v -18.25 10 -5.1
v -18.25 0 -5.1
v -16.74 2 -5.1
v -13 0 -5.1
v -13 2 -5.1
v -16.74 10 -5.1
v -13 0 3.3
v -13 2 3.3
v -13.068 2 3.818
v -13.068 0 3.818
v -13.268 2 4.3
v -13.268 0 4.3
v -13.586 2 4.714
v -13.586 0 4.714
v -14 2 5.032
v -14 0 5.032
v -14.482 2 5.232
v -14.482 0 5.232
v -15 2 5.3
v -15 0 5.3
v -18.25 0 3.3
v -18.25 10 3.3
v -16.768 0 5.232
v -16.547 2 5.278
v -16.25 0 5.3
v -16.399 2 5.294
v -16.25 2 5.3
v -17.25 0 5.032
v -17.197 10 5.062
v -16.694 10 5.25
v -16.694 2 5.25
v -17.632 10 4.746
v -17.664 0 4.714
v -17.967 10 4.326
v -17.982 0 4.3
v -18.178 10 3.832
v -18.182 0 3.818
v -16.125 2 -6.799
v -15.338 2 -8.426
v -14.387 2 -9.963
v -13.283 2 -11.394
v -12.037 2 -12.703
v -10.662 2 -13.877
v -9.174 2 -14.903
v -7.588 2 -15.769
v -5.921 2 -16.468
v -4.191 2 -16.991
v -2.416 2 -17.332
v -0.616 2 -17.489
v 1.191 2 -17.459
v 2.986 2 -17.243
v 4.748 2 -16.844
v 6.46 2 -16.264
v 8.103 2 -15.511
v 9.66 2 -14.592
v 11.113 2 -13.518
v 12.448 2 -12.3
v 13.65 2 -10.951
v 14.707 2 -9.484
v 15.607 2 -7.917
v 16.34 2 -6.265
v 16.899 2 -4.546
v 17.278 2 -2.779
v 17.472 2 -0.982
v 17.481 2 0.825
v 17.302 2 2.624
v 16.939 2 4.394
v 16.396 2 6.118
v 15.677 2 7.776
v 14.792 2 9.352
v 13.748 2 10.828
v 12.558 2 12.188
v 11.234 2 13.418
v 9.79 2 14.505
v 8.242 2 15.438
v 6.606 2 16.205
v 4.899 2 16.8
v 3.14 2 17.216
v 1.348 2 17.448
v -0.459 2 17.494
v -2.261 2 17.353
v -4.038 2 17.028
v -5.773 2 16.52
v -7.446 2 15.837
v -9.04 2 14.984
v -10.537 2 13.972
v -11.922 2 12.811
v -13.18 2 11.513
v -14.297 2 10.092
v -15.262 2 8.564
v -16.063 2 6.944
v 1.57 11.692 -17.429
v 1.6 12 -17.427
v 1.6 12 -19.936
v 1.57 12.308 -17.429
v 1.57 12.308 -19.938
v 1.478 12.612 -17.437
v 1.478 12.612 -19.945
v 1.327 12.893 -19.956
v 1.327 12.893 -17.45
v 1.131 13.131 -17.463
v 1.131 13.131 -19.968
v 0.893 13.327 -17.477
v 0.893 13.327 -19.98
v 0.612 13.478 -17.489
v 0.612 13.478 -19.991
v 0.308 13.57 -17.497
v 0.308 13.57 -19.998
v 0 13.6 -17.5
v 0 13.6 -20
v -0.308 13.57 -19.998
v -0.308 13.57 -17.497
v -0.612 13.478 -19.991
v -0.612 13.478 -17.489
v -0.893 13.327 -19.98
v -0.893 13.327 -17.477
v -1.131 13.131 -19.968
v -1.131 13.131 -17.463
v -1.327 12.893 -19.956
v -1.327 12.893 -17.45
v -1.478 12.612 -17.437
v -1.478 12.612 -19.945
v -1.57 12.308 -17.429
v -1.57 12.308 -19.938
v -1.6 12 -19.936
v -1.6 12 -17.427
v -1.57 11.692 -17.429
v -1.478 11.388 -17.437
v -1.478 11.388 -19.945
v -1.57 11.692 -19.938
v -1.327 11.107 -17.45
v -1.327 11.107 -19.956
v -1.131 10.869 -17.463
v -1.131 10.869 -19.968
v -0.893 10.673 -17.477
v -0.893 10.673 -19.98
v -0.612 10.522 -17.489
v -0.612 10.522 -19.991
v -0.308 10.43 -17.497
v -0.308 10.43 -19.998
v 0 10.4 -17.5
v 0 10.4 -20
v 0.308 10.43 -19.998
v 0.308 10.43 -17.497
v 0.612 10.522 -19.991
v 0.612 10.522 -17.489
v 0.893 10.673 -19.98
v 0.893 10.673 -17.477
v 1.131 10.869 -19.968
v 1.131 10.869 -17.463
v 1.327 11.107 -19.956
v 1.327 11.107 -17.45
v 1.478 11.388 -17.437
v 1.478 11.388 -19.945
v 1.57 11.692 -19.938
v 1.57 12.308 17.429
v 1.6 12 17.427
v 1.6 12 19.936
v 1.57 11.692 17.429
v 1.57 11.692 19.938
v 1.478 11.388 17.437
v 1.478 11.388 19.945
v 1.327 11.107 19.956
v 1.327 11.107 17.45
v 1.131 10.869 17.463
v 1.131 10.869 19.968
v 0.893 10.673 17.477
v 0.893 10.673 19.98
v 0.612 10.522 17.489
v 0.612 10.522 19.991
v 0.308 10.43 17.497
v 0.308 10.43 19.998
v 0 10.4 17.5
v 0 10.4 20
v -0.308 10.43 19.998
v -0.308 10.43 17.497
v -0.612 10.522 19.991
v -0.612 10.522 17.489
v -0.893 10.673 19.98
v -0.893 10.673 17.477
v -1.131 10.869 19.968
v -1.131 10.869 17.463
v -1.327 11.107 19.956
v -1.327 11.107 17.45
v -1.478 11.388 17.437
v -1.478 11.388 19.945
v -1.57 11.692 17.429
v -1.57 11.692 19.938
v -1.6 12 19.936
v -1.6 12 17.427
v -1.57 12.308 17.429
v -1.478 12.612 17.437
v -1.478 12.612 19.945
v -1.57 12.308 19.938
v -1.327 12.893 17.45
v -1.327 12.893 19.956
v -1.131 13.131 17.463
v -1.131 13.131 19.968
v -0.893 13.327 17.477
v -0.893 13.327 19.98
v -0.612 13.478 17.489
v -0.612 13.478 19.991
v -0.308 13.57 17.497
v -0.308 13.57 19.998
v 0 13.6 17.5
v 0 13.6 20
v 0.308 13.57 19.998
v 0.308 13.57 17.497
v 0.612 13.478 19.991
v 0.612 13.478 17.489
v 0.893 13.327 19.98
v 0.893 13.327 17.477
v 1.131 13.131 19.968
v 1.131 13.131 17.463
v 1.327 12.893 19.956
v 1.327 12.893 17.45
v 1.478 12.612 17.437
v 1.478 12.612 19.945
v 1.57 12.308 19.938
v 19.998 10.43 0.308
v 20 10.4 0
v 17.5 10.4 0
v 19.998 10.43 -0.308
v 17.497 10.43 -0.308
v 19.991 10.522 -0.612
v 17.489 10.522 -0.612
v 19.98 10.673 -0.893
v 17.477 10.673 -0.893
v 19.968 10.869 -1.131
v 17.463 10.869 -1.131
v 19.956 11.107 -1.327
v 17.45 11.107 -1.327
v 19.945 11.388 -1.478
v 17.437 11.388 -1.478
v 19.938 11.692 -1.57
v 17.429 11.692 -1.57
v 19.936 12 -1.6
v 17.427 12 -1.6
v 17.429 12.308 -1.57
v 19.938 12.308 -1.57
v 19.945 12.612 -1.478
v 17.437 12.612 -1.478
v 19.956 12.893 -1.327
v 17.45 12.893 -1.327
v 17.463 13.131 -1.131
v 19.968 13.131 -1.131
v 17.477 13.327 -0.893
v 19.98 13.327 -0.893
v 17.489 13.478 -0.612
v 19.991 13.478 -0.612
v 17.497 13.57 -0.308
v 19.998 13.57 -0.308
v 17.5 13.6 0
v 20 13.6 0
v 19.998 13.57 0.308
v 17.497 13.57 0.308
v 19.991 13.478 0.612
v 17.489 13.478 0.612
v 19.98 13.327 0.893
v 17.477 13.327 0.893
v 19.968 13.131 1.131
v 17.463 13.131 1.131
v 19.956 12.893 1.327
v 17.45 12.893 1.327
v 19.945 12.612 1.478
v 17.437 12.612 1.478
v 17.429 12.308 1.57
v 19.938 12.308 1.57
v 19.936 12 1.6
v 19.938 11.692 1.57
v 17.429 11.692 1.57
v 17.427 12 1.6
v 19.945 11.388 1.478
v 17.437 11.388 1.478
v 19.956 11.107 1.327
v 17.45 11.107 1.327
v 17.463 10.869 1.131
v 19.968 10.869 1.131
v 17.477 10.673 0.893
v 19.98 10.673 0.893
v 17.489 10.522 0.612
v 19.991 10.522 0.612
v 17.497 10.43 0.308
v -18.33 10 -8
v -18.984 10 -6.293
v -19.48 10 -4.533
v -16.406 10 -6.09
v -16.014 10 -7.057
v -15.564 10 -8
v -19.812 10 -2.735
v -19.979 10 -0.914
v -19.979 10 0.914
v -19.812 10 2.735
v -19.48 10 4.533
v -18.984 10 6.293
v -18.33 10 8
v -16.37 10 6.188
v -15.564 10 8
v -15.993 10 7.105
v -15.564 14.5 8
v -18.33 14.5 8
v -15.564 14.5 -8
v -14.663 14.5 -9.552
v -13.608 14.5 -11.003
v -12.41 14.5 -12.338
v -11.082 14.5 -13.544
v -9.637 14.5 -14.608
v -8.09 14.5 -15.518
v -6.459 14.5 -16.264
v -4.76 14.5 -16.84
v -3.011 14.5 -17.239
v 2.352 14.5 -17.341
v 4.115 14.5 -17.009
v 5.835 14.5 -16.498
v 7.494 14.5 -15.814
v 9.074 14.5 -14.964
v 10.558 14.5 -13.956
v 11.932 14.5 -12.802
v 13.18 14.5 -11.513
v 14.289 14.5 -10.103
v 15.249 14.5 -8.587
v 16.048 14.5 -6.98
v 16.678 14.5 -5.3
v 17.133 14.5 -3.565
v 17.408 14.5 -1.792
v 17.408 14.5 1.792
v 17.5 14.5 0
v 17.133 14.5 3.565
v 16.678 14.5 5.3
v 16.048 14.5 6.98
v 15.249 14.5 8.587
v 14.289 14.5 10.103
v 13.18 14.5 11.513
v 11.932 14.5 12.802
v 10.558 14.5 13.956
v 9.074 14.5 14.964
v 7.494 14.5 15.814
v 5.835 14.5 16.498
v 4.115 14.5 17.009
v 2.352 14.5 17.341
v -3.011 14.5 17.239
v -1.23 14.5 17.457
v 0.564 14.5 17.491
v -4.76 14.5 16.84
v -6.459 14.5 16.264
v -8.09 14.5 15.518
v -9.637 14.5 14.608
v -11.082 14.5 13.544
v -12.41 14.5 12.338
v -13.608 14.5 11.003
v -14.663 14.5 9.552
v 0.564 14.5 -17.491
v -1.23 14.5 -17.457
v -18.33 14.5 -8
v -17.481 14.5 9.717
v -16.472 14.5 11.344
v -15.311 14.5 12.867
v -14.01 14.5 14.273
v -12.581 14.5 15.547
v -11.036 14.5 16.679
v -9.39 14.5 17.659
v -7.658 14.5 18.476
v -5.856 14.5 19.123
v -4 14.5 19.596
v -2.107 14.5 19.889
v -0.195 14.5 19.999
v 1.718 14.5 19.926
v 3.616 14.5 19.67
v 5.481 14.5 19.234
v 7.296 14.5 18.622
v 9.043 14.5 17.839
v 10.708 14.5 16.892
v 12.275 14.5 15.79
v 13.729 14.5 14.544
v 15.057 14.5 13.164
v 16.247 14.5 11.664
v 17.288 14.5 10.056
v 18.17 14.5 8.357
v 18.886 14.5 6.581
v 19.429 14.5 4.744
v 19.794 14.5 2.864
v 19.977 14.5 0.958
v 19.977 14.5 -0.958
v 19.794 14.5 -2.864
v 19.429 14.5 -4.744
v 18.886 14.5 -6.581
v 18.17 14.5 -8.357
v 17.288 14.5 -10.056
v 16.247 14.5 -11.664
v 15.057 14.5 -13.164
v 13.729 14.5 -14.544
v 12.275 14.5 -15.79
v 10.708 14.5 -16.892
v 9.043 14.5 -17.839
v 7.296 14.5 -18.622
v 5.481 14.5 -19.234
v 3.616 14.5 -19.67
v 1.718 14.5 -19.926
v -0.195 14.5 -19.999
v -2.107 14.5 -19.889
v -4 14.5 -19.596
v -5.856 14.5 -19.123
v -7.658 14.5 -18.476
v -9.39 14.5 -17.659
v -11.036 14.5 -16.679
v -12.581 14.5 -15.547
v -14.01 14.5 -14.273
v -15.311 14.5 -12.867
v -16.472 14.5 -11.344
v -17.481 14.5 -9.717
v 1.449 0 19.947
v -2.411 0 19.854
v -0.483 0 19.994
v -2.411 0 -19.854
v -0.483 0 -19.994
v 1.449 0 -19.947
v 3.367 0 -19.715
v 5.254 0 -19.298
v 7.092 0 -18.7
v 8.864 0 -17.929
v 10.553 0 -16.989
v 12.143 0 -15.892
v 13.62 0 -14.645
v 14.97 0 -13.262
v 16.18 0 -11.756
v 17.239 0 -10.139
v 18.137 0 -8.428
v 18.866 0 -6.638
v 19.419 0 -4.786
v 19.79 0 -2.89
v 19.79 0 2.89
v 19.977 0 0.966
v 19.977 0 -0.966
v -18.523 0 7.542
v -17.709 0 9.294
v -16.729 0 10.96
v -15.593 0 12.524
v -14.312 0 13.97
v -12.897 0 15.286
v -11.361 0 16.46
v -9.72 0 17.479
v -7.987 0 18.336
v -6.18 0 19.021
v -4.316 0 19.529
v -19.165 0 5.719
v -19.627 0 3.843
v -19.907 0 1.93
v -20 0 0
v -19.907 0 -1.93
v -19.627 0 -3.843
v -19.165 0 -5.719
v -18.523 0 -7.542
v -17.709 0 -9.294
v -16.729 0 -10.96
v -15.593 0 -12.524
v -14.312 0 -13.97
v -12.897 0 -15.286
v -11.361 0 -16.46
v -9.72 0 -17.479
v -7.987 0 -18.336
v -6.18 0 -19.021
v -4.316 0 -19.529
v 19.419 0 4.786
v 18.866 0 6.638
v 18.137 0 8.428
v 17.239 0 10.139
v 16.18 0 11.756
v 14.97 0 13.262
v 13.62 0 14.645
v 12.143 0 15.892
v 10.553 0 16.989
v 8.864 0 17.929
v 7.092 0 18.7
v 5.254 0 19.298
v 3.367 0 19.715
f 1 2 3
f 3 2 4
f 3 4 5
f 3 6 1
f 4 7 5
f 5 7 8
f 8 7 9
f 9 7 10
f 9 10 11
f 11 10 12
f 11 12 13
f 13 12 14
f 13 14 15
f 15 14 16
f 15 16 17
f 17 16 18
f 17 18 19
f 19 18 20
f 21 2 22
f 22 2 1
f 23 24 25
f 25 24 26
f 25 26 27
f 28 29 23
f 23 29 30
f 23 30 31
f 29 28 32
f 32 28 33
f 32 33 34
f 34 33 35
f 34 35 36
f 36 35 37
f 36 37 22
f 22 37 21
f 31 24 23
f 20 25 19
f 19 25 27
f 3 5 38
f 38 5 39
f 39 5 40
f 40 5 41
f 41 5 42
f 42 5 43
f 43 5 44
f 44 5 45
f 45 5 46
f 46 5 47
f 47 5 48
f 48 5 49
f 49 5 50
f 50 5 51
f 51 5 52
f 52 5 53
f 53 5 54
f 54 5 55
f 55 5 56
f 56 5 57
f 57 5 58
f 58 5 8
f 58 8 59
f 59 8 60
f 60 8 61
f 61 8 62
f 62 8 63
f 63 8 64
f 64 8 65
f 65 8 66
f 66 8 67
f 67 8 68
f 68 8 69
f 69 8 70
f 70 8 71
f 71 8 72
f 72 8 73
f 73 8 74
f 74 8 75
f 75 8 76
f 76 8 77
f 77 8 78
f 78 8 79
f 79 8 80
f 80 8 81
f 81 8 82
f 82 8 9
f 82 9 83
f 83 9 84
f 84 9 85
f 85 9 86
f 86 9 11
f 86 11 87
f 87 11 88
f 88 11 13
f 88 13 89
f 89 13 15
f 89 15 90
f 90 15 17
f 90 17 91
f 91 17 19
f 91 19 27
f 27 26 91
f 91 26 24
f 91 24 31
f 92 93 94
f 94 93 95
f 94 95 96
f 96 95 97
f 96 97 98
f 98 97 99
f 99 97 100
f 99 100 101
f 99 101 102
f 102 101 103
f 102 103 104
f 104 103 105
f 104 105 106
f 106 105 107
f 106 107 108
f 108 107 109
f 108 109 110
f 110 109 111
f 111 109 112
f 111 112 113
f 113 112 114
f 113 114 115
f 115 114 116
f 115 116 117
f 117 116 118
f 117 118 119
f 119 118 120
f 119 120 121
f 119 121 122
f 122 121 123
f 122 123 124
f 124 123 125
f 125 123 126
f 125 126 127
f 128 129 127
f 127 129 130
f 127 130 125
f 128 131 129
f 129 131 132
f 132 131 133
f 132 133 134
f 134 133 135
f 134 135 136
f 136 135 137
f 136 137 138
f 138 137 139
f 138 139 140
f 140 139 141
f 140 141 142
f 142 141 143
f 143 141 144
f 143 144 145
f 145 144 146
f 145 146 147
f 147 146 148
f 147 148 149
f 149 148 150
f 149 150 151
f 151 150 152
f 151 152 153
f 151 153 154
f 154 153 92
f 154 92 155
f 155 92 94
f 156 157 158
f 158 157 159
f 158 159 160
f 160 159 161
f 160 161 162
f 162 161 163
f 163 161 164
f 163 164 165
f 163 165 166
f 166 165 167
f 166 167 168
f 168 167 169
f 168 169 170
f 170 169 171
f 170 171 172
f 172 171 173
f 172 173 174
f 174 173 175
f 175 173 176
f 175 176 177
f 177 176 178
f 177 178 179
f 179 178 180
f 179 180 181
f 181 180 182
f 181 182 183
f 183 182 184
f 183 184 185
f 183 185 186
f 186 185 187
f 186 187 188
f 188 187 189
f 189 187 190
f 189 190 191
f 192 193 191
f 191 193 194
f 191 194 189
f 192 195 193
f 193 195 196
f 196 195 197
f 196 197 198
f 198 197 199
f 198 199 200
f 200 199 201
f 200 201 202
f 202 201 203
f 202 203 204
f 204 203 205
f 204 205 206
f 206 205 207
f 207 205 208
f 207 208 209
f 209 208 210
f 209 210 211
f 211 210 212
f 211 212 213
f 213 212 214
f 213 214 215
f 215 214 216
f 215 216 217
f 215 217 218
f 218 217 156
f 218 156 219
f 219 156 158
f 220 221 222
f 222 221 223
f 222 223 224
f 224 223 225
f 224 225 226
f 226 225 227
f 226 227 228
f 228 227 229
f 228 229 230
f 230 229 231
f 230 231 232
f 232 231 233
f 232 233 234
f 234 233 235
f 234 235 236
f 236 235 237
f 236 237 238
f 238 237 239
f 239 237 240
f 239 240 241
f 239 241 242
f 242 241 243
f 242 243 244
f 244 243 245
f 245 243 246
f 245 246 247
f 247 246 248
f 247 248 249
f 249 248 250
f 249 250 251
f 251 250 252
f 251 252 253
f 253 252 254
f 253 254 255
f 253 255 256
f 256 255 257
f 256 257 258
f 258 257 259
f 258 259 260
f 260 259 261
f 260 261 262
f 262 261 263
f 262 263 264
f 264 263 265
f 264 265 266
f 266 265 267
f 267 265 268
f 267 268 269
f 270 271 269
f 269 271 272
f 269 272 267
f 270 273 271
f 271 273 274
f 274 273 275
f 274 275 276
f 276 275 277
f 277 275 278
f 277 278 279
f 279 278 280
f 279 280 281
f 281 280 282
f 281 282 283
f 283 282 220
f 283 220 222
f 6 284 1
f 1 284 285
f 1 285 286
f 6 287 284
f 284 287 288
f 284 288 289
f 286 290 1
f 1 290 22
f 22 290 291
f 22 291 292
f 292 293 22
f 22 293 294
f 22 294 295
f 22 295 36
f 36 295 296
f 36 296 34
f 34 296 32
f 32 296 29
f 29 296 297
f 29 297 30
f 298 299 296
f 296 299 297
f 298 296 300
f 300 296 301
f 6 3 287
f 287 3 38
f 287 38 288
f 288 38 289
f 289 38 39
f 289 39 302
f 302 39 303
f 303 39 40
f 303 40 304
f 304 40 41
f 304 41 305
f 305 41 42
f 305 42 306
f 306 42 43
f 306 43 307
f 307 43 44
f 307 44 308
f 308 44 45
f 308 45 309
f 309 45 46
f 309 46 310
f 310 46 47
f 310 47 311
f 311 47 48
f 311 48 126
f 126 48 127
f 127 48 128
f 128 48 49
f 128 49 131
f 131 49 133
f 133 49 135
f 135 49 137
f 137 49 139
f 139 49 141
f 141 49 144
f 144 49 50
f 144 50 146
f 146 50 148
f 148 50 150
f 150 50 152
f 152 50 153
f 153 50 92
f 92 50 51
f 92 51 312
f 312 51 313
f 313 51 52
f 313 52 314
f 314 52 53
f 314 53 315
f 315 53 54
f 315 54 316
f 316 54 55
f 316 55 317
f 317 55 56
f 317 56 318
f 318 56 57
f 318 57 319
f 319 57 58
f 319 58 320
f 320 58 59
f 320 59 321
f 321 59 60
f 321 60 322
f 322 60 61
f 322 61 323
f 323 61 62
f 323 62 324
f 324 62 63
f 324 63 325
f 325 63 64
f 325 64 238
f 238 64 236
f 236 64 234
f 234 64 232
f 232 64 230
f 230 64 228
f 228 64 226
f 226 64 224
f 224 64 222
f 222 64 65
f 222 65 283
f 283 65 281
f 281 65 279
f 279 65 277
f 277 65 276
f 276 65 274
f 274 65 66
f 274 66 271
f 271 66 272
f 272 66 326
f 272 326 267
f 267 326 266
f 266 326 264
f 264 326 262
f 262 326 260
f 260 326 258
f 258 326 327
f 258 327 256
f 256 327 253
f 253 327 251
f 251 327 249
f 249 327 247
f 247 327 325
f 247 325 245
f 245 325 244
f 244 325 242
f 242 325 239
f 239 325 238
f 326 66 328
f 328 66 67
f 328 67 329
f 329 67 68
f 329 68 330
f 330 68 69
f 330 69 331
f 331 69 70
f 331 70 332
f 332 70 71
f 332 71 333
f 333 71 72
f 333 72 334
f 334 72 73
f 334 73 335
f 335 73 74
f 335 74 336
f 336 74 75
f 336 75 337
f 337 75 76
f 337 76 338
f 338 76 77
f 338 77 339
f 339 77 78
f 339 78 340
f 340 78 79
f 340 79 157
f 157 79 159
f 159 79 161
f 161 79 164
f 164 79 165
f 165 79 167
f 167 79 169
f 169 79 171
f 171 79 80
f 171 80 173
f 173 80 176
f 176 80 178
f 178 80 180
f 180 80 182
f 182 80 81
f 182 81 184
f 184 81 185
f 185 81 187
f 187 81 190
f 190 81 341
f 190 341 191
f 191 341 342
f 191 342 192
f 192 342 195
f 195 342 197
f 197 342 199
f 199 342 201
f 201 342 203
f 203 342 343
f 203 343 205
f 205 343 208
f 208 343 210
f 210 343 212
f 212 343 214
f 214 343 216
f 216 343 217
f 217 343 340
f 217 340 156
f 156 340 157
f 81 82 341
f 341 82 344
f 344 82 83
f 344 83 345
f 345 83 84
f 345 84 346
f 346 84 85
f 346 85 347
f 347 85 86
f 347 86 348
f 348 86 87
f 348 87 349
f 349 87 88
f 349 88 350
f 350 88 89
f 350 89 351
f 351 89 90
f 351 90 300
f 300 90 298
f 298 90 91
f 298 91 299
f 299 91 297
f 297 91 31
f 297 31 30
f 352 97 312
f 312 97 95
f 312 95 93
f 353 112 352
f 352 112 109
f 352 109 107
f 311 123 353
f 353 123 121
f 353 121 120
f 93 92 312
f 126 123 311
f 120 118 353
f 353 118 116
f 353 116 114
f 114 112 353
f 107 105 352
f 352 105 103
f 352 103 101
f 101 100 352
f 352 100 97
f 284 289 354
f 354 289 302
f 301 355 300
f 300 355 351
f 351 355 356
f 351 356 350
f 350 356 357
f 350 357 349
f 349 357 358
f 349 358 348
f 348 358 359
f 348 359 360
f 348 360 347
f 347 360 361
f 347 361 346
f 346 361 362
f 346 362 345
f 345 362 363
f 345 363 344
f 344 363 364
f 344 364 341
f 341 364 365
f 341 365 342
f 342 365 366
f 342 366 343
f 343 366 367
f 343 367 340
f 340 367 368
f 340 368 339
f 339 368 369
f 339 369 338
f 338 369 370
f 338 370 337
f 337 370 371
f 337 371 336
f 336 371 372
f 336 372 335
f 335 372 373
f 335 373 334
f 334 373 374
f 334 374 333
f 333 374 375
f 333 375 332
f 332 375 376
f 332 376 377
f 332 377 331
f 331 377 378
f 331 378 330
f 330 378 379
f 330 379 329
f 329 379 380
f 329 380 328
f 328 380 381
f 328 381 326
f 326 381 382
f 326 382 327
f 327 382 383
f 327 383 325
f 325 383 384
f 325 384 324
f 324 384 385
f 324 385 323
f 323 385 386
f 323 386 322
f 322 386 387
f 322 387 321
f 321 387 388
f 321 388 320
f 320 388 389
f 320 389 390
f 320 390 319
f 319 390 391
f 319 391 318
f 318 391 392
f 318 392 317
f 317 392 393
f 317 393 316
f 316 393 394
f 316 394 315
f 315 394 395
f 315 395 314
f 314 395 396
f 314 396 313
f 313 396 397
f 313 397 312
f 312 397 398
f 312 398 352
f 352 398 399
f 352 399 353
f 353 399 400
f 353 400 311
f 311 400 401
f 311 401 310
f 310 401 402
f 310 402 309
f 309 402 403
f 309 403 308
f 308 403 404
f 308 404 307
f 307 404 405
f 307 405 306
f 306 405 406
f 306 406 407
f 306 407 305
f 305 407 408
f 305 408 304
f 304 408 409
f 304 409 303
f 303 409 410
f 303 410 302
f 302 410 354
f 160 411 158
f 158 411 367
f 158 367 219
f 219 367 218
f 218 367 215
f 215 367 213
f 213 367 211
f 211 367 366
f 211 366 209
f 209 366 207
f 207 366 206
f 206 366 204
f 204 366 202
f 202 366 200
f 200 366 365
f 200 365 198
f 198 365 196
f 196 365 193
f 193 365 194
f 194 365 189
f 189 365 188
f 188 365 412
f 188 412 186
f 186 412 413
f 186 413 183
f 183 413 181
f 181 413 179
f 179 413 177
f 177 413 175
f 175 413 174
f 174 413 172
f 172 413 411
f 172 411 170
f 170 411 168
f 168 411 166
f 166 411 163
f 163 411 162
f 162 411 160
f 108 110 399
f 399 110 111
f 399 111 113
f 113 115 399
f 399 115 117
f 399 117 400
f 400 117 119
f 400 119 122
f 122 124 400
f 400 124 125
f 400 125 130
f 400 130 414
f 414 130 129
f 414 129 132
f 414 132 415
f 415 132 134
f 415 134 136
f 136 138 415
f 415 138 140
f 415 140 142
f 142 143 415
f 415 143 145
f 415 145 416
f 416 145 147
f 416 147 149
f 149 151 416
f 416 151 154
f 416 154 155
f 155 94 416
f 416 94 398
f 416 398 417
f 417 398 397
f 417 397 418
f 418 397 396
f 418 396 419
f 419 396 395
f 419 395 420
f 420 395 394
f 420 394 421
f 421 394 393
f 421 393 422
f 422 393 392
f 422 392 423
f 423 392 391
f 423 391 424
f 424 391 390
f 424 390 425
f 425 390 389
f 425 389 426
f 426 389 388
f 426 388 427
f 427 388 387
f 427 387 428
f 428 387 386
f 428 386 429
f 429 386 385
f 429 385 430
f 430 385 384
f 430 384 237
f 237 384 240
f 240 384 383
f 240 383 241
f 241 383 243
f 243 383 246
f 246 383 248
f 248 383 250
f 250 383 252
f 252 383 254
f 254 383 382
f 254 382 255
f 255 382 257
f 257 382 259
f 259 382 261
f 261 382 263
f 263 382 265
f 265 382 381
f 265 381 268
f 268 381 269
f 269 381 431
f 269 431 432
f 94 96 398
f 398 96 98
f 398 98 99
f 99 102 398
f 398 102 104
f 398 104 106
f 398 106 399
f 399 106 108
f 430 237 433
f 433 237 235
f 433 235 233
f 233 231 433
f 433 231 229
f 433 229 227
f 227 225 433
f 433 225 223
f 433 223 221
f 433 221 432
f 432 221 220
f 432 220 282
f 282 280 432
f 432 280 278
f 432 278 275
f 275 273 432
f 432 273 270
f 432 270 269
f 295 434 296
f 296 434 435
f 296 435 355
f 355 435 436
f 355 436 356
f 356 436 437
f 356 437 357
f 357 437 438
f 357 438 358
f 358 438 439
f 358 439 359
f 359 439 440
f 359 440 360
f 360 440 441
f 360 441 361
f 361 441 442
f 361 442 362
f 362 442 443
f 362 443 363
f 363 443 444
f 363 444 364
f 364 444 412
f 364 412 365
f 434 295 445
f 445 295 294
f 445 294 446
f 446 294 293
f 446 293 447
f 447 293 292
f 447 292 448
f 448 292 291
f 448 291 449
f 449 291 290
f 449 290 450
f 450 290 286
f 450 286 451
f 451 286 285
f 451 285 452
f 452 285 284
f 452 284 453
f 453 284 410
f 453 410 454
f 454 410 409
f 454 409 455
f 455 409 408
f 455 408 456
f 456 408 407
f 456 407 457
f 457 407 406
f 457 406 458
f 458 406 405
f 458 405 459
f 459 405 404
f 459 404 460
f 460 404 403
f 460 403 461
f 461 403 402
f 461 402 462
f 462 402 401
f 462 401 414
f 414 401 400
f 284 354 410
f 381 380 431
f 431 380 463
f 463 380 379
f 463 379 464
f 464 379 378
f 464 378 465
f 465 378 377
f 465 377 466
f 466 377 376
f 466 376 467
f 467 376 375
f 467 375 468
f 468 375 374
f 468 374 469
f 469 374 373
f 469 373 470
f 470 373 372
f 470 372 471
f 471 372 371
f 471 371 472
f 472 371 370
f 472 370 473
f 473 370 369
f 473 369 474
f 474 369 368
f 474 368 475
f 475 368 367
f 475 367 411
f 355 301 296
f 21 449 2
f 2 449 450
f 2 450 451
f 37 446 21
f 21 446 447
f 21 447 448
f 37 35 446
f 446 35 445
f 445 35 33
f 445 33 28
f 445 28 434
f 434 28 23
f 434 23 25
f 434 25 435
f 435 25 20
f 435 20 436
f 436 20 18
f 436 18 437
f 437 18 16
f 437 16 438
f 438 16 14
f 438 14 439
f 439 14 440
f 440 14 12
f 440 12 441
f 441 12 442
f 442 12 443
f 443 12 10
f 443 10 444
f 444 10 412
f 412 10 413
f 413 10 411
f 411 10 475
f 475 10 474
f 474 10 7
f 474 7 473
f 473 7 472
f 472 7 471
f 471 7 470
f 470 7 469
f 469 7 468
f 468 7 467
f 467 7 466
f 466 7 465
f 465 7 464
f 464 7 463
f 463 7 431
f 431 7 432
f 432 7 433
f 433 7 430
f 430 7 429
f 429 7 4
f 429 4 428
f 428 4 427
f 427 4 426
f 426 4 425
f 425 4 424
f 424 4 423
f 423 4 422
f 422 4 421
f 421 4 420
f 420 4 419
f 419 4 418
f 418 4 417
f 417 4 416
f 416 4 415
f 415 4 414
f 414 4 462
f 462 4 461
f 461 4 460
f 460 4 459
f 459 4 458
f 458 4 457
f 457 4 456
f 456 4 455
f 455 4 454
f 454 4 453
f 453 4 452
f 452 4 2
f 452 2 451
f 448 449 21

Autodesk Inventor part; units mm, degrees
ref_plane "YZ Plane" through (0, 0, 0) normal (1, 0, 0) x (0, 1, 0)
sketch "Sketch1" plane through (0, 0, 0) normal (0, 1, 0) x (-1, 0, 0)
  circle A0 centre (0, 0) radius 20
  dimension "d0" = 40
sketch "Sketch1 outline for Extrusion1" plane through (0, 0, 0) normal (0, 1, 0) x (-1, 0, 0)
  circle A0 centre (0, 0) radius 20
extrude "Extrusion1" add sketch "Sketch1 outline for Extrusion1" along normal blind 10
sketch "Sketch2" plane through (0, 10, 0) normal (0, 1, 0) x (1, 0, 0)
  circle A0 centre (0, 0) radius 17.5
  circle A1 centre (0, 0) radius 20
  line L0 (-18.330303, 8) -> (-15.564382, 8)
  line L1 (-18.330303, -8) -> (-15.564382, -8)
  circle A2 centre (0, 0) radius 20
  point P0 (-16.947343, 8)
  dimension "d3" = 35
  dimension "d4" = 8
  dimension "d5" = 8
  dimension "d6" = 40
sketch "Sketch2 outline for Extrusion2" plane through (0, 10, 0) normal (0, 1, 0) x (1, 0, 0)
  line L0 (-15.564382, -8) -> (-18.330303, -8)
  arc A0 (-15.564382, 8) -> (-15.564382, -8) centre (0, 0) cw
  line L1 (-18.330303, 8) -> (-15.564382, 8)
  arc A1 (-18.330303, -8) -> (-18.330303, 8) centre (0, 0) ccw
extrude "Extrusion2" add sketch "Sketch2 outline for Extrusion2" along normal blind 4.5
sketch "Sketch3" plane through (0, 10, 0) normal (0, 1, 0) x (1, 0, 0)
  circle A0 centre (0, 0) radius 17.5
sketch "Sketch3 outline for Extrusion3" plane through (0, 10, 0) normal (0, 1, 0) x (1, 0, 0)
  circle A0 centre (0, 0) radius 17.5
extrude "Extrusion3" cut sketch "Sketch3 outline for Extrusion3" against normal blind 8
sketch "Sketch4" plane through (0, 14.5, 0) normal (0, 1, 0) x (1, 0, 0)
  circle A0 centre (0, 0) radius 20 projected
  point P0 (0, -20.035453)
  point P1 (20, 0)
  point P2 (0, 20)
ref_plane "Work Plane1" through (20, 14.5, 0) normal (1, 0, 0) x (0, 1, 0)
sketch "Sketch5" plane through (20, 14.5, 0) normal (1, 0, 0) x (0, 1, 0)
  circle A0 centre (-2.5, 0) radius 1.6
  line L0 (0, -20) -> (0, 20) projected
  point P0 (-14.5, 0)
  point P1 (0, 8)
  point P2 (0, -8)
  dimension "d11" = 3.2
  dimension "d12" = 2.5
sketch "Sketch5 outline for Extrusion4" plane through (20, 14.5, 0) normal (1, 0, 0) x (0, 1, 0)
  circle A0 centre (-2.5, 0) radius 1.6
extrude "Extrusion4" cut sketch "Sketch5 outline for Extrusion4" against normal up to surface
ref_plane "Work Plane2" through (0, 14.5, -20) normal (0, 0, -1) x (-1, 0, 0)
sketch "Sketch6" plane through (0, 14.5, -20) normal (0, 0, -1) x (-1, 0, 0)
  circle A0 centre (0, -2.5) radius 1.6
  line L0 (18.330303, 0) -> (-20, 0)
  point P0 (0, -14.5)
  dimension "d15" = 3.2
  dimension "d16" = 2.5
sketch "Sketch6 outline for Extrusion5" plane through (0, 14.5, -20) normal (0, 0, -1) x (-1, 0, 0)
  circle A0 centre (0, -2.5) radius 1.6
extrude "Extrusion5" cut sketch "Sketch6 outline for Extrusion5" against normal through all
sketch "Sketch7" plane through (0, 10, 0) normal (0, 1, 0) x (1, 0, 0)
  line L0 (-13, -3.3) -> (-13, 5.1)
  line L1 (-13, 5.1) -> (-18.25, 5.1)
  line L2 (-18.25, 5.1) -> (-18.25, -3.3)
  line L3 (-16.25, -5.3) -> (-15, -5.3)
  arc A0 (-15, -5.3) -> (-13, -3.3) centre (-15, -3.3) ccw
  arc A1 (-18.25, -3.3) -> (-16.25, -5.3) centre (-16.25, -3.3) ccw
  arc A2 (-18.330303, 8) -> (-18.330303, -8) centre (0, 0) ccw
  point P0 (-18.25, -5.3)
  dimension "d19" = 10.4
  dimension "d20" = 5.25
  dimension "d21" = 2
  dimension "d25" = 18.25
  dimension "d26" = 5.1
sketch "Sketch7 outline for Extrusion6" plane through (0, 10, 0) normal (0, 1, 0) x (1, 0, 0)
  line L0 (-13, -3.3) -> (-13, 5.1)
  arc A0 (-15, -5.3) -> (-13, -3.3) centre (-15, -3.3) ccw
  line L1 (-16.25, -5.3) -> (-15, -5.3)
  arc A1 (-18.25, -3.3) -> (-16.25, -5.3) centre (-16.25, -3.3) ccw
  line L2 (-18.25, 5.1) -> (-18.25, -3.3)
  line L3 (-13, 5.1) -> (-18.25, 5.1)
extrude "Extrusion6" cut sketch "Sketch7 outline for Extrusion6" against normal through all
properties part number "Payload Adapter"
